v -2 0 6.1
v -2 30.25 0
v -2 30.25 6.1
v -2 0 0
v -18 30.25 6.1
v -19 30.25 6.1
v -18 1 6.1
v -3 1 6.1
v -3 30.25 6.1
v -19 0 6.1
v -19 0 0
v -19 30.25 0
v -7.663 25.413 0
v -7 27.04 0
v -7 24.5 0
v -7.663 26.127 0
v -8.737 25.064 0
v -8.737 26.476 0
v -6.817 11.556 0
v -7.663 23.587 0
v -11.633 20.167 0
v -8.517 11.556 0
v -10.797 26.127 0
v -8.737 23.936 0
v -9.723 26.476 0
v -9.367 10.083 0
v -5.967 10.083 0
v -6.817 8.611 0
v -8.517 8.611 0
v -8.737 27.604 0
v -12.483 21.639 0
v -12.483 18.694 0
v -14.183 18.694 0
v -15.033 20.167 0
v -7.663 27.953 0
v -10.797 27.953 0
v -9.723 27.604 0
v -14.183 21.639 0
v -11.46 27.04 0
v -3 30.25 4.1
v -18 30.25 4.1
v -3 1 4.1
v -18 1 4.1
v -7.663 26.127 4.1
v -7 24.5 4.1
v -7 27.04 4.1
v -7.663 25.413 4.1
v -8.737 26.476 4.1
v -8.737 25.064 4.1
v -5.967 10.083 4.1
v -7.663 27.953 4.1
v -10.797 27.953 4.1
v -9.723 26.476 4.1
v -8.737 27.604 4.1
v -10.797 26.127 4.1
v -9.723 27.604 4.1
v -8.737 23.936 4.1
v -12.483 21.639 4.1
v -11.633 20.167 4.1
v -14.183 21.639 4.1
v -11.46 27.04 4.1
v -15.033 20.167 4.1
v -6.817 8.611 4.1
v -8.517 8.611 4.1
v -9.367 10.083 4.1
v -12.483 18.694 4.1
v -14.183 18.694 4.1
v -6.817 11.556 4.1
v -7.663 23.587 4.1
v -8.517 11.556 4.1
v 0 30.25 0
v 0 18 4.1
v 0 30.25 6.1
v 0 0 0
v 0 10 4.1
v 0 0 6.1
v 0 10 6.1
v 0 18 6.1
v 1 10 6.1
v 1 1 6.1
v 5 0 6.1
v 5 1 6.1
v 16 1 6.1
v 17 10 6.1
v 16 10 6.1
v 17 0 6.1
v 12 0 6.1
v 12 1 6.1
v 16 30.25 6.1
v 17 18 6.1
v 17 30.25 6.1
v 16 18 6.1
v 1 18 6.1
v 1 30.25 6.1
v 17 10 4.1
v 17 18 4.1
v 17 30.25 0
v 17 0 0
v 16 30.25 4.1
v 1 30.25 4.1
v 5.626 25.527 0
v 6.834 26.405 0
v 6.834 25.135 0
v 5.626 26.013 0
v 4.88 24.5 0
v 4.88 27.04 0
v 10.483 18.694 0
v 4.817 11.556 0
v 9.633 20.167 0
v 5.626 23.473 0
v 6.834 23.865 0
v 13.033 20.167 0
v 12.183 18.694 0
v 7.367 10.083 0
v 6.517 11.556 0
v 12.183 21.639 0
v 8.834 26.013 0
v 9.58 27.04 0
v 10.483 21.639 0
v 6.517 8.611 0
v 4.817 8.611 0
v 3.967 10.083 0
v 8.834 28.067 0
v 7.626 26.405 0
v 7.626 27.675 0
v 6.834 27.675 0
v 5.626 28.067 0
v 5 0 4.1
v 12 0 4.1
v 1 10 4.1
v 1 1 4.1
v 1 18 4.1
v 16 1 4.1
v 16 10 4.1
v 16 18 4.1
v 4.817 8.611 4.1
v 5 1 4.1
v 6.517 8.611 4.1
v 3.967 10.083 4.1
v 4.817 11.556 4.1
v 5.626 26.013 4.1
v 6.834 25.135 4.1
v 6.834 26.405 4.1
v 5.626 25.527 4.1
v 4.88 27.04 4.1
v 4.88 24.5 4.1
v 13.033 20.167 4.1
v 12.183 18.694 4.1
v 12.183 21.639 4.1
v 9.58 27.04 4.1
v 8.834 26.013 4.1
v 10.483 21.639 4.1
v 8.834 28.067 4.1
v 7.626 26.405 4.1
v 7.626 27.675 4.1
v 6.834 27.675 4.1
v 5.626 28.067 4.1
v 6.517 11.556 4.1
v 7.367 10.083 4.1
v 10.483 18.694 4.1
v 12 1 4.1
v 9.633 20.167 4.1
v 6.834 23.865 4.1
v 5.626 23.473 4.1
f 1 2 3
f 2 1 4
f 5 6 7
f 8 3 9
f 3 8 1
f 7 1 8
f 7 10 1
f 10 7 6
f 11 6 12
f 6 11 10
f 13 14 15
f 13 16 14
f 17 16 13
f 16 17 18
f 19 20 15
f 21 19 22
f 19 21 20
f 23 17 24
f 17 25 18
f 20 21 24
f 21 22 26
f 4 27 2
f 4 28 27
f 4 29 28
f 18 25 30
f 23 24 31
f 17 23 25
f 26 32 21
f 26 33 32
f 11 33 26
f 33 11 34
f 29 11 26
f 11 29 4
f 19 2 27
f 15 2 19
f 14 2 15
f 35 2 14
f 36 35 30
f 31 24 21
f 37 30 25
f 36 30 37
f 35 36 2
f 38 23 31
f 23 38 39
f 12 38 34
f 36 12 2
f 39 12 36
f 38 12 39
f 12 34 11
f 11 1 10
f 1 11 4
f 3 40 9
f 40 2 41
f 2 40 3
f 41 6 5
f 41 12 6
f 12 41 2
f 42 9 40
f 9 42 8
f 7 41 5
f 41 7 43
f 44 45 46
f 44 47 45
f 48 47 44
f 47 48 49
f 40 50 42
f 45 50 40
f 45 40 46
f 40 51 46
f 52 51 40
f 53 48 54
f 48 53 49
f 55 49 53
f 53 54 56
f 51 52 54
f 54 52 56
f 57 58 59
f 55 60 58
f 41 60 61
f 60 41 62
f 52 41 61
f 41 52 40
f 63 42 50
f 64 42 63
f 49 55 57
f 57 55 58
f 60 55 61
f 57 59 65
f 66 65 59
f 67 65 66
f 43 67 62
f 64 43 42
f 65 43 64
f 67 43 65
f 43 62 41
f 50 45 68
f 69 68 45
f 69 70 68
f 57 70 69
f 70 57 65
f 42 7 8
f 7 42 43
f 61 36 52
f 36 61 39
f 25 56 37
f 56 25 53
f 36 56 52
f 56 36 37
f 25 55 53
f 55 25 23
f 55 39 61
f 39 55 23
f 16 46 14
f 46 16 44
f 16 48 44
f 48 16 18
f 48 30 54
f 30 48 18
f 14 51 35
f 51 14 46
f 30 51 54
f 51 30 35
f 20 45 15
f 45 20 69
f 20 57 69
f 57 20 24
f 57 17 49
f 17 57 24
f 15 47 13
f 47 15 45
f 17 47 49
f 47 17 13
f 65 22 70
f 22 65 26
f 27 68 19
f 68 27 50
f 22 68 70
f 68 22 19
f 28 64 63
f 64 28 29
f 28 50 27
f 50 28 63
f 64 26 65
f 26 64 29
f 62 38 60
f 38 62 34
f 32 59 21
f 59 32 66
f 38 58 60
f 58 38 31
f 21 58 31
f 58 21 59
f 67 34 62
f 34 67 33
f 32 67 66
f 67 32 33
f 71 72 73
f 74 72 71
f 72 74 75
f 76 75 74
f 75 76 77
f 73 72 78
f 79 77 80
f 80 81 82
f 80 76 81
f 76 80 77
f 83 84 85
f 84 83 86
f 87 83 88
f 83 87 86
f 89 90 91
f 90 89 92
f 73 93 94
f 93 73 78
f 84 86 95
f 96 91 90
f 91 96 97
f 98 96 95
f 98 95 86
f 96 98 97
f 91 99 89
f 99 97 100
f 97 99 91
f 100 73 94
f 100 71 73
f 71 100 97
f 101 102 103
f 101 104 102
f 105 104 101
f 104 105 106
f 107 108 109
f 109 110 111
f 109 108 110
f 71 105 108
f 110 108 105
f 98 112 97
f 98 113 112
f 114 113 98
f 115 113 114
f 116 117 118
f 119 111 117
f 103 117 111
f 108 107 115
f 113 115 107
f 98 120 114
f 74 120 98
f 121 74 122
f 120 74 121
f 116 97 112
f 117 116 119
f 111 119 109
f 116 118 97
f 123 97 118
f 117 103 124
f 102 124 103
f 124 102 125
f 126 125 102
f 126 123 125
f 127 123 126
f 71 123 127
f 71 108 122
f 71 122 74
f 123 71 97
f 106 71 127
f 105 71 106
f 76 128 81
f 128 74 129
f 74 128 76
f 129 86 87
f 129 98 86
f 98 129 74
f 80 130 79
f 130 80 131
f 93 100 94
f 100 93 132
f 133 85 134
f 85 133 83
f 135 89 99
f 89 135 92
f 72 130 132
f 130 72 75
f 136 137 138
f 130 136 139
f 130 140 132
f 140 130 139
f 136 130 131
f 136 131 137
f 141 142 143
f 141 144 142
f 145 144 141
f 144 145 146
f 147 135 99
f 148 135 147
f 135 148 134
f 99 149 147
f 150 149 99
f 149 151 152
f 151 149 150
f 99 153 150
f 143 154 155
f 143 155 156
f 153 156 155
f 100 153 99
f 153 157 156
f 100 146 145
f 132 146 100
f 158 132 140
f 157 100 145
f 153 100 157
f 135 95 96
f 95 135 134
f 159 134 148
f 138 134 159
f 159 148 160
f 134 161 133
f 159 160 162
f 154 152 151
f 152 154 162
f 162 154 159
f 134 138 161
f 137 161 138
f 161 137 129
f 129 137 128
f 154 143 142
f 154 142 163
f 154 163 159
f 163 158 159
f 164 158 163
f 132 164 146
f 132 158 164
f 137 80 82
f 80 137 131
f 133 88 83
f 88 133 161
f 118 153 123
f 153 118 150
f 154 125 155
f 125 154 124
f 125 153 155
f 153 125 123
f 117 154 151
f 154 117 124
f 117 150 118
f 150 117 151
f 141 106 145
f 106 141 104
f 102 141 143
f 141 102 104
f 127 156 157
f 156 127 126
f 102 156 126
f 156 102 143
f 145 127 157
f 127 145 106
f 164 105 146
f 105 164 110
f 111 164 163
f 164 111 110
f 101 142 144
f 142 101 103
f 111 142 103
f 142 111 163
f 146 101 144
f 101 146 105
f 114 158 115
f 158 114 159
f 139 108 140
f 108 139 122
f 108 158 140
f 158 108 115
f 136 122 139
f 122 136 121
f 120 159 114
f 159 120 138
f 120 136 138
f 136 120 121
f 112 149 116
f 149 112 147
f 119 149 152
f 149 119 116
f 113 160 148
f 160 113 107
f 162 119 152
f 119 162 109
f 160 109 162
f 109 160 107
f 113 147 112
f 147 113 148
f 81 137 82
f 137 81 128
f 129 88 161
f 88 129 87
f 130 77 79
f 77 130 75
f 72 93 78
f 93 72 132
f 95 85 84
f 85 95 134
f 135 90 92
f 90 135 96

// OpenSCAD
H_ext = 6.1;
W_ext = 17.0;
L_ext = 30.25;

H_int = 4.1;
W_int = 15;
L_int = 29.25;

Holes_spacing = 2.54;
Hole_from_border_L = 3.54 - 0.33;
Hole_from_ext_border_W = 6.5 - 0.33;
Hole_dia = 1.6;
actual_dia = Hole_dia * 1.2;
Hole_dia_pinhead = 1.8;
actual_dia_pinhead = Hole_dia_pinhead * 1.2;

side_to_notch = 4.0; //distance along the width of the PCB between its border and the start of the breakable tab notch.
back_to_notch = 10.0; //distance along the length of the PCB between its border and the start of the breakable tab notch.
notch = 8.0; //width along the length of the PCB between of the breakable tab notch.


// This side will receive the U2F board to be programmed.
difference()
{
    // Basic outline
    cube( [W_ext, L_ext, H_ext] );
    
    // Removing a pcb sized chunk from the top
    translate( [(W_ext - W_int) / 2.0, L_ext - L_int, H_int] )
        cube( [W_int, L_ext, H_int] );

    // Holes for the pogo pins. Their head will go there, make the hole larger so they doesn't get stuck after being pressed.
    translate( [W_ext / 2.0, L_ext - Hole_from_border_L, -1] )
        cylinder( d=actual_dia_pinhead, $fn=5, h= H_ext + 2 );
    
    translate( [W_ext / 2.0 - Holes_spacing, L_ext - Hole_from_border_L, -1] )
        rotate( [0, 0, 180] )
            cylinder( d=actual_dia_pinhead, $fn=5, h=H_ext + 2 );
    
    translate( [W_ext / 2.0 - Holes_spacing, L_ext - Hole_from_border_L - Holes_spacing, -1] )
        rotate( [0, 0, 180] )
            cylinder( d=actual_dia_pinhead, $fn=5, h=H_ext + 2 );
    
    // 2 holes to ease assembly of the 2 parts using a bit of 3mm filament
    translate( [W_ext / 3.0, L_ext / 3.0, -0.1] )
        cylinder( r=1.7, $fn=6, h=H_int + 0.2 );
        
    translate( [W_ext / 3.0 * 2, L_ext / 3.0 * 2, -0.1] )
        cylinder( r=1.7, $fn=6, h=H_int + 0.2 );
    
    // On this side, removing notches so the remnant of the breakable tabs doesn't forbid us to slip the PCB in place.
    translate( [side_to_notch + (W_ext - W_int) / 2.0, -0.1, H_int] )
        cube( [W_int - 2 * side_to_notch, L_ext - L_int + 0.2, H_ext - H_int + 0.1] );
        
    translate( [-0.1, back_to_notch, H_int] )
        cube( [(W_ext - W_int) / 2.0 + 0.2, notch, H_ext - H_int + 0.1] );
        
    translate( [W_ext - 0.1 - (W_ext - W_int) / 2.0, back_to_notch, H_int] )
        cube( [(W_ext - W_int) / 2.0 + 0.2, notch, H_ext - H_int + 0.1] );
}


// A mirrored version of the previous, without notches and with smaller pogo pins holes.
// This side is where you should connect you pogo pins to whatever you use for programming - IE perfboard.
translate( [-2, 0, 0] ) mirror() difference()
{
    // Basic outline
    cube( [W_ext, L_ext, H_ext] );
    
    // Removing a pcb sized chunk from the top
    translate( [(W_ext - W_int) / 2.0, L_ext - L_int, H_int] )
        cube( [W_int, L_ext, H_int] );
    
    // Holes for the pogo pins. Smaller here as we need them to be a tight fit around the pins tail..
    translate( [W_ext / 2.0, L_ext - Hole_from_border_L, -1] )
        cylinder( d=actual_dia, $fn=5, h= H_ext + 2 );
    
    translate( [W_ext / 2.0 - Holes_spacing, L_ext - Hole_from_border_L, -1] )
        rotate( [0, 0, 180] )
            cylinder( d=actual_dia, $fn=5, h=H_ext + 2 );
    
    translate( [W_ext / 2.0 - Holes_spacing, L_ext - Hole_from_border_L - Holes_spacing, -1] )
        rotate( [0, 0, 180] )
            cylinder( d=actual_dia, $fn=5, h=H_ext + 2 );
    
    // 2 holes to ease assembly of the 2 parts using a bit of 3mm filament
    translate( [W_ext / 3.0, L_ext / 3.0, -0.1] )
        cylinder( r=1.7, $fn=6, h=H_int + 0.2 );
    
    translate( [W_ext / 3.0 * 2, L_ext / 3.0 * 2, -0.1] )
        cylinder( r=1.7, $fn=6, h=H_int + 0.2 );
}
